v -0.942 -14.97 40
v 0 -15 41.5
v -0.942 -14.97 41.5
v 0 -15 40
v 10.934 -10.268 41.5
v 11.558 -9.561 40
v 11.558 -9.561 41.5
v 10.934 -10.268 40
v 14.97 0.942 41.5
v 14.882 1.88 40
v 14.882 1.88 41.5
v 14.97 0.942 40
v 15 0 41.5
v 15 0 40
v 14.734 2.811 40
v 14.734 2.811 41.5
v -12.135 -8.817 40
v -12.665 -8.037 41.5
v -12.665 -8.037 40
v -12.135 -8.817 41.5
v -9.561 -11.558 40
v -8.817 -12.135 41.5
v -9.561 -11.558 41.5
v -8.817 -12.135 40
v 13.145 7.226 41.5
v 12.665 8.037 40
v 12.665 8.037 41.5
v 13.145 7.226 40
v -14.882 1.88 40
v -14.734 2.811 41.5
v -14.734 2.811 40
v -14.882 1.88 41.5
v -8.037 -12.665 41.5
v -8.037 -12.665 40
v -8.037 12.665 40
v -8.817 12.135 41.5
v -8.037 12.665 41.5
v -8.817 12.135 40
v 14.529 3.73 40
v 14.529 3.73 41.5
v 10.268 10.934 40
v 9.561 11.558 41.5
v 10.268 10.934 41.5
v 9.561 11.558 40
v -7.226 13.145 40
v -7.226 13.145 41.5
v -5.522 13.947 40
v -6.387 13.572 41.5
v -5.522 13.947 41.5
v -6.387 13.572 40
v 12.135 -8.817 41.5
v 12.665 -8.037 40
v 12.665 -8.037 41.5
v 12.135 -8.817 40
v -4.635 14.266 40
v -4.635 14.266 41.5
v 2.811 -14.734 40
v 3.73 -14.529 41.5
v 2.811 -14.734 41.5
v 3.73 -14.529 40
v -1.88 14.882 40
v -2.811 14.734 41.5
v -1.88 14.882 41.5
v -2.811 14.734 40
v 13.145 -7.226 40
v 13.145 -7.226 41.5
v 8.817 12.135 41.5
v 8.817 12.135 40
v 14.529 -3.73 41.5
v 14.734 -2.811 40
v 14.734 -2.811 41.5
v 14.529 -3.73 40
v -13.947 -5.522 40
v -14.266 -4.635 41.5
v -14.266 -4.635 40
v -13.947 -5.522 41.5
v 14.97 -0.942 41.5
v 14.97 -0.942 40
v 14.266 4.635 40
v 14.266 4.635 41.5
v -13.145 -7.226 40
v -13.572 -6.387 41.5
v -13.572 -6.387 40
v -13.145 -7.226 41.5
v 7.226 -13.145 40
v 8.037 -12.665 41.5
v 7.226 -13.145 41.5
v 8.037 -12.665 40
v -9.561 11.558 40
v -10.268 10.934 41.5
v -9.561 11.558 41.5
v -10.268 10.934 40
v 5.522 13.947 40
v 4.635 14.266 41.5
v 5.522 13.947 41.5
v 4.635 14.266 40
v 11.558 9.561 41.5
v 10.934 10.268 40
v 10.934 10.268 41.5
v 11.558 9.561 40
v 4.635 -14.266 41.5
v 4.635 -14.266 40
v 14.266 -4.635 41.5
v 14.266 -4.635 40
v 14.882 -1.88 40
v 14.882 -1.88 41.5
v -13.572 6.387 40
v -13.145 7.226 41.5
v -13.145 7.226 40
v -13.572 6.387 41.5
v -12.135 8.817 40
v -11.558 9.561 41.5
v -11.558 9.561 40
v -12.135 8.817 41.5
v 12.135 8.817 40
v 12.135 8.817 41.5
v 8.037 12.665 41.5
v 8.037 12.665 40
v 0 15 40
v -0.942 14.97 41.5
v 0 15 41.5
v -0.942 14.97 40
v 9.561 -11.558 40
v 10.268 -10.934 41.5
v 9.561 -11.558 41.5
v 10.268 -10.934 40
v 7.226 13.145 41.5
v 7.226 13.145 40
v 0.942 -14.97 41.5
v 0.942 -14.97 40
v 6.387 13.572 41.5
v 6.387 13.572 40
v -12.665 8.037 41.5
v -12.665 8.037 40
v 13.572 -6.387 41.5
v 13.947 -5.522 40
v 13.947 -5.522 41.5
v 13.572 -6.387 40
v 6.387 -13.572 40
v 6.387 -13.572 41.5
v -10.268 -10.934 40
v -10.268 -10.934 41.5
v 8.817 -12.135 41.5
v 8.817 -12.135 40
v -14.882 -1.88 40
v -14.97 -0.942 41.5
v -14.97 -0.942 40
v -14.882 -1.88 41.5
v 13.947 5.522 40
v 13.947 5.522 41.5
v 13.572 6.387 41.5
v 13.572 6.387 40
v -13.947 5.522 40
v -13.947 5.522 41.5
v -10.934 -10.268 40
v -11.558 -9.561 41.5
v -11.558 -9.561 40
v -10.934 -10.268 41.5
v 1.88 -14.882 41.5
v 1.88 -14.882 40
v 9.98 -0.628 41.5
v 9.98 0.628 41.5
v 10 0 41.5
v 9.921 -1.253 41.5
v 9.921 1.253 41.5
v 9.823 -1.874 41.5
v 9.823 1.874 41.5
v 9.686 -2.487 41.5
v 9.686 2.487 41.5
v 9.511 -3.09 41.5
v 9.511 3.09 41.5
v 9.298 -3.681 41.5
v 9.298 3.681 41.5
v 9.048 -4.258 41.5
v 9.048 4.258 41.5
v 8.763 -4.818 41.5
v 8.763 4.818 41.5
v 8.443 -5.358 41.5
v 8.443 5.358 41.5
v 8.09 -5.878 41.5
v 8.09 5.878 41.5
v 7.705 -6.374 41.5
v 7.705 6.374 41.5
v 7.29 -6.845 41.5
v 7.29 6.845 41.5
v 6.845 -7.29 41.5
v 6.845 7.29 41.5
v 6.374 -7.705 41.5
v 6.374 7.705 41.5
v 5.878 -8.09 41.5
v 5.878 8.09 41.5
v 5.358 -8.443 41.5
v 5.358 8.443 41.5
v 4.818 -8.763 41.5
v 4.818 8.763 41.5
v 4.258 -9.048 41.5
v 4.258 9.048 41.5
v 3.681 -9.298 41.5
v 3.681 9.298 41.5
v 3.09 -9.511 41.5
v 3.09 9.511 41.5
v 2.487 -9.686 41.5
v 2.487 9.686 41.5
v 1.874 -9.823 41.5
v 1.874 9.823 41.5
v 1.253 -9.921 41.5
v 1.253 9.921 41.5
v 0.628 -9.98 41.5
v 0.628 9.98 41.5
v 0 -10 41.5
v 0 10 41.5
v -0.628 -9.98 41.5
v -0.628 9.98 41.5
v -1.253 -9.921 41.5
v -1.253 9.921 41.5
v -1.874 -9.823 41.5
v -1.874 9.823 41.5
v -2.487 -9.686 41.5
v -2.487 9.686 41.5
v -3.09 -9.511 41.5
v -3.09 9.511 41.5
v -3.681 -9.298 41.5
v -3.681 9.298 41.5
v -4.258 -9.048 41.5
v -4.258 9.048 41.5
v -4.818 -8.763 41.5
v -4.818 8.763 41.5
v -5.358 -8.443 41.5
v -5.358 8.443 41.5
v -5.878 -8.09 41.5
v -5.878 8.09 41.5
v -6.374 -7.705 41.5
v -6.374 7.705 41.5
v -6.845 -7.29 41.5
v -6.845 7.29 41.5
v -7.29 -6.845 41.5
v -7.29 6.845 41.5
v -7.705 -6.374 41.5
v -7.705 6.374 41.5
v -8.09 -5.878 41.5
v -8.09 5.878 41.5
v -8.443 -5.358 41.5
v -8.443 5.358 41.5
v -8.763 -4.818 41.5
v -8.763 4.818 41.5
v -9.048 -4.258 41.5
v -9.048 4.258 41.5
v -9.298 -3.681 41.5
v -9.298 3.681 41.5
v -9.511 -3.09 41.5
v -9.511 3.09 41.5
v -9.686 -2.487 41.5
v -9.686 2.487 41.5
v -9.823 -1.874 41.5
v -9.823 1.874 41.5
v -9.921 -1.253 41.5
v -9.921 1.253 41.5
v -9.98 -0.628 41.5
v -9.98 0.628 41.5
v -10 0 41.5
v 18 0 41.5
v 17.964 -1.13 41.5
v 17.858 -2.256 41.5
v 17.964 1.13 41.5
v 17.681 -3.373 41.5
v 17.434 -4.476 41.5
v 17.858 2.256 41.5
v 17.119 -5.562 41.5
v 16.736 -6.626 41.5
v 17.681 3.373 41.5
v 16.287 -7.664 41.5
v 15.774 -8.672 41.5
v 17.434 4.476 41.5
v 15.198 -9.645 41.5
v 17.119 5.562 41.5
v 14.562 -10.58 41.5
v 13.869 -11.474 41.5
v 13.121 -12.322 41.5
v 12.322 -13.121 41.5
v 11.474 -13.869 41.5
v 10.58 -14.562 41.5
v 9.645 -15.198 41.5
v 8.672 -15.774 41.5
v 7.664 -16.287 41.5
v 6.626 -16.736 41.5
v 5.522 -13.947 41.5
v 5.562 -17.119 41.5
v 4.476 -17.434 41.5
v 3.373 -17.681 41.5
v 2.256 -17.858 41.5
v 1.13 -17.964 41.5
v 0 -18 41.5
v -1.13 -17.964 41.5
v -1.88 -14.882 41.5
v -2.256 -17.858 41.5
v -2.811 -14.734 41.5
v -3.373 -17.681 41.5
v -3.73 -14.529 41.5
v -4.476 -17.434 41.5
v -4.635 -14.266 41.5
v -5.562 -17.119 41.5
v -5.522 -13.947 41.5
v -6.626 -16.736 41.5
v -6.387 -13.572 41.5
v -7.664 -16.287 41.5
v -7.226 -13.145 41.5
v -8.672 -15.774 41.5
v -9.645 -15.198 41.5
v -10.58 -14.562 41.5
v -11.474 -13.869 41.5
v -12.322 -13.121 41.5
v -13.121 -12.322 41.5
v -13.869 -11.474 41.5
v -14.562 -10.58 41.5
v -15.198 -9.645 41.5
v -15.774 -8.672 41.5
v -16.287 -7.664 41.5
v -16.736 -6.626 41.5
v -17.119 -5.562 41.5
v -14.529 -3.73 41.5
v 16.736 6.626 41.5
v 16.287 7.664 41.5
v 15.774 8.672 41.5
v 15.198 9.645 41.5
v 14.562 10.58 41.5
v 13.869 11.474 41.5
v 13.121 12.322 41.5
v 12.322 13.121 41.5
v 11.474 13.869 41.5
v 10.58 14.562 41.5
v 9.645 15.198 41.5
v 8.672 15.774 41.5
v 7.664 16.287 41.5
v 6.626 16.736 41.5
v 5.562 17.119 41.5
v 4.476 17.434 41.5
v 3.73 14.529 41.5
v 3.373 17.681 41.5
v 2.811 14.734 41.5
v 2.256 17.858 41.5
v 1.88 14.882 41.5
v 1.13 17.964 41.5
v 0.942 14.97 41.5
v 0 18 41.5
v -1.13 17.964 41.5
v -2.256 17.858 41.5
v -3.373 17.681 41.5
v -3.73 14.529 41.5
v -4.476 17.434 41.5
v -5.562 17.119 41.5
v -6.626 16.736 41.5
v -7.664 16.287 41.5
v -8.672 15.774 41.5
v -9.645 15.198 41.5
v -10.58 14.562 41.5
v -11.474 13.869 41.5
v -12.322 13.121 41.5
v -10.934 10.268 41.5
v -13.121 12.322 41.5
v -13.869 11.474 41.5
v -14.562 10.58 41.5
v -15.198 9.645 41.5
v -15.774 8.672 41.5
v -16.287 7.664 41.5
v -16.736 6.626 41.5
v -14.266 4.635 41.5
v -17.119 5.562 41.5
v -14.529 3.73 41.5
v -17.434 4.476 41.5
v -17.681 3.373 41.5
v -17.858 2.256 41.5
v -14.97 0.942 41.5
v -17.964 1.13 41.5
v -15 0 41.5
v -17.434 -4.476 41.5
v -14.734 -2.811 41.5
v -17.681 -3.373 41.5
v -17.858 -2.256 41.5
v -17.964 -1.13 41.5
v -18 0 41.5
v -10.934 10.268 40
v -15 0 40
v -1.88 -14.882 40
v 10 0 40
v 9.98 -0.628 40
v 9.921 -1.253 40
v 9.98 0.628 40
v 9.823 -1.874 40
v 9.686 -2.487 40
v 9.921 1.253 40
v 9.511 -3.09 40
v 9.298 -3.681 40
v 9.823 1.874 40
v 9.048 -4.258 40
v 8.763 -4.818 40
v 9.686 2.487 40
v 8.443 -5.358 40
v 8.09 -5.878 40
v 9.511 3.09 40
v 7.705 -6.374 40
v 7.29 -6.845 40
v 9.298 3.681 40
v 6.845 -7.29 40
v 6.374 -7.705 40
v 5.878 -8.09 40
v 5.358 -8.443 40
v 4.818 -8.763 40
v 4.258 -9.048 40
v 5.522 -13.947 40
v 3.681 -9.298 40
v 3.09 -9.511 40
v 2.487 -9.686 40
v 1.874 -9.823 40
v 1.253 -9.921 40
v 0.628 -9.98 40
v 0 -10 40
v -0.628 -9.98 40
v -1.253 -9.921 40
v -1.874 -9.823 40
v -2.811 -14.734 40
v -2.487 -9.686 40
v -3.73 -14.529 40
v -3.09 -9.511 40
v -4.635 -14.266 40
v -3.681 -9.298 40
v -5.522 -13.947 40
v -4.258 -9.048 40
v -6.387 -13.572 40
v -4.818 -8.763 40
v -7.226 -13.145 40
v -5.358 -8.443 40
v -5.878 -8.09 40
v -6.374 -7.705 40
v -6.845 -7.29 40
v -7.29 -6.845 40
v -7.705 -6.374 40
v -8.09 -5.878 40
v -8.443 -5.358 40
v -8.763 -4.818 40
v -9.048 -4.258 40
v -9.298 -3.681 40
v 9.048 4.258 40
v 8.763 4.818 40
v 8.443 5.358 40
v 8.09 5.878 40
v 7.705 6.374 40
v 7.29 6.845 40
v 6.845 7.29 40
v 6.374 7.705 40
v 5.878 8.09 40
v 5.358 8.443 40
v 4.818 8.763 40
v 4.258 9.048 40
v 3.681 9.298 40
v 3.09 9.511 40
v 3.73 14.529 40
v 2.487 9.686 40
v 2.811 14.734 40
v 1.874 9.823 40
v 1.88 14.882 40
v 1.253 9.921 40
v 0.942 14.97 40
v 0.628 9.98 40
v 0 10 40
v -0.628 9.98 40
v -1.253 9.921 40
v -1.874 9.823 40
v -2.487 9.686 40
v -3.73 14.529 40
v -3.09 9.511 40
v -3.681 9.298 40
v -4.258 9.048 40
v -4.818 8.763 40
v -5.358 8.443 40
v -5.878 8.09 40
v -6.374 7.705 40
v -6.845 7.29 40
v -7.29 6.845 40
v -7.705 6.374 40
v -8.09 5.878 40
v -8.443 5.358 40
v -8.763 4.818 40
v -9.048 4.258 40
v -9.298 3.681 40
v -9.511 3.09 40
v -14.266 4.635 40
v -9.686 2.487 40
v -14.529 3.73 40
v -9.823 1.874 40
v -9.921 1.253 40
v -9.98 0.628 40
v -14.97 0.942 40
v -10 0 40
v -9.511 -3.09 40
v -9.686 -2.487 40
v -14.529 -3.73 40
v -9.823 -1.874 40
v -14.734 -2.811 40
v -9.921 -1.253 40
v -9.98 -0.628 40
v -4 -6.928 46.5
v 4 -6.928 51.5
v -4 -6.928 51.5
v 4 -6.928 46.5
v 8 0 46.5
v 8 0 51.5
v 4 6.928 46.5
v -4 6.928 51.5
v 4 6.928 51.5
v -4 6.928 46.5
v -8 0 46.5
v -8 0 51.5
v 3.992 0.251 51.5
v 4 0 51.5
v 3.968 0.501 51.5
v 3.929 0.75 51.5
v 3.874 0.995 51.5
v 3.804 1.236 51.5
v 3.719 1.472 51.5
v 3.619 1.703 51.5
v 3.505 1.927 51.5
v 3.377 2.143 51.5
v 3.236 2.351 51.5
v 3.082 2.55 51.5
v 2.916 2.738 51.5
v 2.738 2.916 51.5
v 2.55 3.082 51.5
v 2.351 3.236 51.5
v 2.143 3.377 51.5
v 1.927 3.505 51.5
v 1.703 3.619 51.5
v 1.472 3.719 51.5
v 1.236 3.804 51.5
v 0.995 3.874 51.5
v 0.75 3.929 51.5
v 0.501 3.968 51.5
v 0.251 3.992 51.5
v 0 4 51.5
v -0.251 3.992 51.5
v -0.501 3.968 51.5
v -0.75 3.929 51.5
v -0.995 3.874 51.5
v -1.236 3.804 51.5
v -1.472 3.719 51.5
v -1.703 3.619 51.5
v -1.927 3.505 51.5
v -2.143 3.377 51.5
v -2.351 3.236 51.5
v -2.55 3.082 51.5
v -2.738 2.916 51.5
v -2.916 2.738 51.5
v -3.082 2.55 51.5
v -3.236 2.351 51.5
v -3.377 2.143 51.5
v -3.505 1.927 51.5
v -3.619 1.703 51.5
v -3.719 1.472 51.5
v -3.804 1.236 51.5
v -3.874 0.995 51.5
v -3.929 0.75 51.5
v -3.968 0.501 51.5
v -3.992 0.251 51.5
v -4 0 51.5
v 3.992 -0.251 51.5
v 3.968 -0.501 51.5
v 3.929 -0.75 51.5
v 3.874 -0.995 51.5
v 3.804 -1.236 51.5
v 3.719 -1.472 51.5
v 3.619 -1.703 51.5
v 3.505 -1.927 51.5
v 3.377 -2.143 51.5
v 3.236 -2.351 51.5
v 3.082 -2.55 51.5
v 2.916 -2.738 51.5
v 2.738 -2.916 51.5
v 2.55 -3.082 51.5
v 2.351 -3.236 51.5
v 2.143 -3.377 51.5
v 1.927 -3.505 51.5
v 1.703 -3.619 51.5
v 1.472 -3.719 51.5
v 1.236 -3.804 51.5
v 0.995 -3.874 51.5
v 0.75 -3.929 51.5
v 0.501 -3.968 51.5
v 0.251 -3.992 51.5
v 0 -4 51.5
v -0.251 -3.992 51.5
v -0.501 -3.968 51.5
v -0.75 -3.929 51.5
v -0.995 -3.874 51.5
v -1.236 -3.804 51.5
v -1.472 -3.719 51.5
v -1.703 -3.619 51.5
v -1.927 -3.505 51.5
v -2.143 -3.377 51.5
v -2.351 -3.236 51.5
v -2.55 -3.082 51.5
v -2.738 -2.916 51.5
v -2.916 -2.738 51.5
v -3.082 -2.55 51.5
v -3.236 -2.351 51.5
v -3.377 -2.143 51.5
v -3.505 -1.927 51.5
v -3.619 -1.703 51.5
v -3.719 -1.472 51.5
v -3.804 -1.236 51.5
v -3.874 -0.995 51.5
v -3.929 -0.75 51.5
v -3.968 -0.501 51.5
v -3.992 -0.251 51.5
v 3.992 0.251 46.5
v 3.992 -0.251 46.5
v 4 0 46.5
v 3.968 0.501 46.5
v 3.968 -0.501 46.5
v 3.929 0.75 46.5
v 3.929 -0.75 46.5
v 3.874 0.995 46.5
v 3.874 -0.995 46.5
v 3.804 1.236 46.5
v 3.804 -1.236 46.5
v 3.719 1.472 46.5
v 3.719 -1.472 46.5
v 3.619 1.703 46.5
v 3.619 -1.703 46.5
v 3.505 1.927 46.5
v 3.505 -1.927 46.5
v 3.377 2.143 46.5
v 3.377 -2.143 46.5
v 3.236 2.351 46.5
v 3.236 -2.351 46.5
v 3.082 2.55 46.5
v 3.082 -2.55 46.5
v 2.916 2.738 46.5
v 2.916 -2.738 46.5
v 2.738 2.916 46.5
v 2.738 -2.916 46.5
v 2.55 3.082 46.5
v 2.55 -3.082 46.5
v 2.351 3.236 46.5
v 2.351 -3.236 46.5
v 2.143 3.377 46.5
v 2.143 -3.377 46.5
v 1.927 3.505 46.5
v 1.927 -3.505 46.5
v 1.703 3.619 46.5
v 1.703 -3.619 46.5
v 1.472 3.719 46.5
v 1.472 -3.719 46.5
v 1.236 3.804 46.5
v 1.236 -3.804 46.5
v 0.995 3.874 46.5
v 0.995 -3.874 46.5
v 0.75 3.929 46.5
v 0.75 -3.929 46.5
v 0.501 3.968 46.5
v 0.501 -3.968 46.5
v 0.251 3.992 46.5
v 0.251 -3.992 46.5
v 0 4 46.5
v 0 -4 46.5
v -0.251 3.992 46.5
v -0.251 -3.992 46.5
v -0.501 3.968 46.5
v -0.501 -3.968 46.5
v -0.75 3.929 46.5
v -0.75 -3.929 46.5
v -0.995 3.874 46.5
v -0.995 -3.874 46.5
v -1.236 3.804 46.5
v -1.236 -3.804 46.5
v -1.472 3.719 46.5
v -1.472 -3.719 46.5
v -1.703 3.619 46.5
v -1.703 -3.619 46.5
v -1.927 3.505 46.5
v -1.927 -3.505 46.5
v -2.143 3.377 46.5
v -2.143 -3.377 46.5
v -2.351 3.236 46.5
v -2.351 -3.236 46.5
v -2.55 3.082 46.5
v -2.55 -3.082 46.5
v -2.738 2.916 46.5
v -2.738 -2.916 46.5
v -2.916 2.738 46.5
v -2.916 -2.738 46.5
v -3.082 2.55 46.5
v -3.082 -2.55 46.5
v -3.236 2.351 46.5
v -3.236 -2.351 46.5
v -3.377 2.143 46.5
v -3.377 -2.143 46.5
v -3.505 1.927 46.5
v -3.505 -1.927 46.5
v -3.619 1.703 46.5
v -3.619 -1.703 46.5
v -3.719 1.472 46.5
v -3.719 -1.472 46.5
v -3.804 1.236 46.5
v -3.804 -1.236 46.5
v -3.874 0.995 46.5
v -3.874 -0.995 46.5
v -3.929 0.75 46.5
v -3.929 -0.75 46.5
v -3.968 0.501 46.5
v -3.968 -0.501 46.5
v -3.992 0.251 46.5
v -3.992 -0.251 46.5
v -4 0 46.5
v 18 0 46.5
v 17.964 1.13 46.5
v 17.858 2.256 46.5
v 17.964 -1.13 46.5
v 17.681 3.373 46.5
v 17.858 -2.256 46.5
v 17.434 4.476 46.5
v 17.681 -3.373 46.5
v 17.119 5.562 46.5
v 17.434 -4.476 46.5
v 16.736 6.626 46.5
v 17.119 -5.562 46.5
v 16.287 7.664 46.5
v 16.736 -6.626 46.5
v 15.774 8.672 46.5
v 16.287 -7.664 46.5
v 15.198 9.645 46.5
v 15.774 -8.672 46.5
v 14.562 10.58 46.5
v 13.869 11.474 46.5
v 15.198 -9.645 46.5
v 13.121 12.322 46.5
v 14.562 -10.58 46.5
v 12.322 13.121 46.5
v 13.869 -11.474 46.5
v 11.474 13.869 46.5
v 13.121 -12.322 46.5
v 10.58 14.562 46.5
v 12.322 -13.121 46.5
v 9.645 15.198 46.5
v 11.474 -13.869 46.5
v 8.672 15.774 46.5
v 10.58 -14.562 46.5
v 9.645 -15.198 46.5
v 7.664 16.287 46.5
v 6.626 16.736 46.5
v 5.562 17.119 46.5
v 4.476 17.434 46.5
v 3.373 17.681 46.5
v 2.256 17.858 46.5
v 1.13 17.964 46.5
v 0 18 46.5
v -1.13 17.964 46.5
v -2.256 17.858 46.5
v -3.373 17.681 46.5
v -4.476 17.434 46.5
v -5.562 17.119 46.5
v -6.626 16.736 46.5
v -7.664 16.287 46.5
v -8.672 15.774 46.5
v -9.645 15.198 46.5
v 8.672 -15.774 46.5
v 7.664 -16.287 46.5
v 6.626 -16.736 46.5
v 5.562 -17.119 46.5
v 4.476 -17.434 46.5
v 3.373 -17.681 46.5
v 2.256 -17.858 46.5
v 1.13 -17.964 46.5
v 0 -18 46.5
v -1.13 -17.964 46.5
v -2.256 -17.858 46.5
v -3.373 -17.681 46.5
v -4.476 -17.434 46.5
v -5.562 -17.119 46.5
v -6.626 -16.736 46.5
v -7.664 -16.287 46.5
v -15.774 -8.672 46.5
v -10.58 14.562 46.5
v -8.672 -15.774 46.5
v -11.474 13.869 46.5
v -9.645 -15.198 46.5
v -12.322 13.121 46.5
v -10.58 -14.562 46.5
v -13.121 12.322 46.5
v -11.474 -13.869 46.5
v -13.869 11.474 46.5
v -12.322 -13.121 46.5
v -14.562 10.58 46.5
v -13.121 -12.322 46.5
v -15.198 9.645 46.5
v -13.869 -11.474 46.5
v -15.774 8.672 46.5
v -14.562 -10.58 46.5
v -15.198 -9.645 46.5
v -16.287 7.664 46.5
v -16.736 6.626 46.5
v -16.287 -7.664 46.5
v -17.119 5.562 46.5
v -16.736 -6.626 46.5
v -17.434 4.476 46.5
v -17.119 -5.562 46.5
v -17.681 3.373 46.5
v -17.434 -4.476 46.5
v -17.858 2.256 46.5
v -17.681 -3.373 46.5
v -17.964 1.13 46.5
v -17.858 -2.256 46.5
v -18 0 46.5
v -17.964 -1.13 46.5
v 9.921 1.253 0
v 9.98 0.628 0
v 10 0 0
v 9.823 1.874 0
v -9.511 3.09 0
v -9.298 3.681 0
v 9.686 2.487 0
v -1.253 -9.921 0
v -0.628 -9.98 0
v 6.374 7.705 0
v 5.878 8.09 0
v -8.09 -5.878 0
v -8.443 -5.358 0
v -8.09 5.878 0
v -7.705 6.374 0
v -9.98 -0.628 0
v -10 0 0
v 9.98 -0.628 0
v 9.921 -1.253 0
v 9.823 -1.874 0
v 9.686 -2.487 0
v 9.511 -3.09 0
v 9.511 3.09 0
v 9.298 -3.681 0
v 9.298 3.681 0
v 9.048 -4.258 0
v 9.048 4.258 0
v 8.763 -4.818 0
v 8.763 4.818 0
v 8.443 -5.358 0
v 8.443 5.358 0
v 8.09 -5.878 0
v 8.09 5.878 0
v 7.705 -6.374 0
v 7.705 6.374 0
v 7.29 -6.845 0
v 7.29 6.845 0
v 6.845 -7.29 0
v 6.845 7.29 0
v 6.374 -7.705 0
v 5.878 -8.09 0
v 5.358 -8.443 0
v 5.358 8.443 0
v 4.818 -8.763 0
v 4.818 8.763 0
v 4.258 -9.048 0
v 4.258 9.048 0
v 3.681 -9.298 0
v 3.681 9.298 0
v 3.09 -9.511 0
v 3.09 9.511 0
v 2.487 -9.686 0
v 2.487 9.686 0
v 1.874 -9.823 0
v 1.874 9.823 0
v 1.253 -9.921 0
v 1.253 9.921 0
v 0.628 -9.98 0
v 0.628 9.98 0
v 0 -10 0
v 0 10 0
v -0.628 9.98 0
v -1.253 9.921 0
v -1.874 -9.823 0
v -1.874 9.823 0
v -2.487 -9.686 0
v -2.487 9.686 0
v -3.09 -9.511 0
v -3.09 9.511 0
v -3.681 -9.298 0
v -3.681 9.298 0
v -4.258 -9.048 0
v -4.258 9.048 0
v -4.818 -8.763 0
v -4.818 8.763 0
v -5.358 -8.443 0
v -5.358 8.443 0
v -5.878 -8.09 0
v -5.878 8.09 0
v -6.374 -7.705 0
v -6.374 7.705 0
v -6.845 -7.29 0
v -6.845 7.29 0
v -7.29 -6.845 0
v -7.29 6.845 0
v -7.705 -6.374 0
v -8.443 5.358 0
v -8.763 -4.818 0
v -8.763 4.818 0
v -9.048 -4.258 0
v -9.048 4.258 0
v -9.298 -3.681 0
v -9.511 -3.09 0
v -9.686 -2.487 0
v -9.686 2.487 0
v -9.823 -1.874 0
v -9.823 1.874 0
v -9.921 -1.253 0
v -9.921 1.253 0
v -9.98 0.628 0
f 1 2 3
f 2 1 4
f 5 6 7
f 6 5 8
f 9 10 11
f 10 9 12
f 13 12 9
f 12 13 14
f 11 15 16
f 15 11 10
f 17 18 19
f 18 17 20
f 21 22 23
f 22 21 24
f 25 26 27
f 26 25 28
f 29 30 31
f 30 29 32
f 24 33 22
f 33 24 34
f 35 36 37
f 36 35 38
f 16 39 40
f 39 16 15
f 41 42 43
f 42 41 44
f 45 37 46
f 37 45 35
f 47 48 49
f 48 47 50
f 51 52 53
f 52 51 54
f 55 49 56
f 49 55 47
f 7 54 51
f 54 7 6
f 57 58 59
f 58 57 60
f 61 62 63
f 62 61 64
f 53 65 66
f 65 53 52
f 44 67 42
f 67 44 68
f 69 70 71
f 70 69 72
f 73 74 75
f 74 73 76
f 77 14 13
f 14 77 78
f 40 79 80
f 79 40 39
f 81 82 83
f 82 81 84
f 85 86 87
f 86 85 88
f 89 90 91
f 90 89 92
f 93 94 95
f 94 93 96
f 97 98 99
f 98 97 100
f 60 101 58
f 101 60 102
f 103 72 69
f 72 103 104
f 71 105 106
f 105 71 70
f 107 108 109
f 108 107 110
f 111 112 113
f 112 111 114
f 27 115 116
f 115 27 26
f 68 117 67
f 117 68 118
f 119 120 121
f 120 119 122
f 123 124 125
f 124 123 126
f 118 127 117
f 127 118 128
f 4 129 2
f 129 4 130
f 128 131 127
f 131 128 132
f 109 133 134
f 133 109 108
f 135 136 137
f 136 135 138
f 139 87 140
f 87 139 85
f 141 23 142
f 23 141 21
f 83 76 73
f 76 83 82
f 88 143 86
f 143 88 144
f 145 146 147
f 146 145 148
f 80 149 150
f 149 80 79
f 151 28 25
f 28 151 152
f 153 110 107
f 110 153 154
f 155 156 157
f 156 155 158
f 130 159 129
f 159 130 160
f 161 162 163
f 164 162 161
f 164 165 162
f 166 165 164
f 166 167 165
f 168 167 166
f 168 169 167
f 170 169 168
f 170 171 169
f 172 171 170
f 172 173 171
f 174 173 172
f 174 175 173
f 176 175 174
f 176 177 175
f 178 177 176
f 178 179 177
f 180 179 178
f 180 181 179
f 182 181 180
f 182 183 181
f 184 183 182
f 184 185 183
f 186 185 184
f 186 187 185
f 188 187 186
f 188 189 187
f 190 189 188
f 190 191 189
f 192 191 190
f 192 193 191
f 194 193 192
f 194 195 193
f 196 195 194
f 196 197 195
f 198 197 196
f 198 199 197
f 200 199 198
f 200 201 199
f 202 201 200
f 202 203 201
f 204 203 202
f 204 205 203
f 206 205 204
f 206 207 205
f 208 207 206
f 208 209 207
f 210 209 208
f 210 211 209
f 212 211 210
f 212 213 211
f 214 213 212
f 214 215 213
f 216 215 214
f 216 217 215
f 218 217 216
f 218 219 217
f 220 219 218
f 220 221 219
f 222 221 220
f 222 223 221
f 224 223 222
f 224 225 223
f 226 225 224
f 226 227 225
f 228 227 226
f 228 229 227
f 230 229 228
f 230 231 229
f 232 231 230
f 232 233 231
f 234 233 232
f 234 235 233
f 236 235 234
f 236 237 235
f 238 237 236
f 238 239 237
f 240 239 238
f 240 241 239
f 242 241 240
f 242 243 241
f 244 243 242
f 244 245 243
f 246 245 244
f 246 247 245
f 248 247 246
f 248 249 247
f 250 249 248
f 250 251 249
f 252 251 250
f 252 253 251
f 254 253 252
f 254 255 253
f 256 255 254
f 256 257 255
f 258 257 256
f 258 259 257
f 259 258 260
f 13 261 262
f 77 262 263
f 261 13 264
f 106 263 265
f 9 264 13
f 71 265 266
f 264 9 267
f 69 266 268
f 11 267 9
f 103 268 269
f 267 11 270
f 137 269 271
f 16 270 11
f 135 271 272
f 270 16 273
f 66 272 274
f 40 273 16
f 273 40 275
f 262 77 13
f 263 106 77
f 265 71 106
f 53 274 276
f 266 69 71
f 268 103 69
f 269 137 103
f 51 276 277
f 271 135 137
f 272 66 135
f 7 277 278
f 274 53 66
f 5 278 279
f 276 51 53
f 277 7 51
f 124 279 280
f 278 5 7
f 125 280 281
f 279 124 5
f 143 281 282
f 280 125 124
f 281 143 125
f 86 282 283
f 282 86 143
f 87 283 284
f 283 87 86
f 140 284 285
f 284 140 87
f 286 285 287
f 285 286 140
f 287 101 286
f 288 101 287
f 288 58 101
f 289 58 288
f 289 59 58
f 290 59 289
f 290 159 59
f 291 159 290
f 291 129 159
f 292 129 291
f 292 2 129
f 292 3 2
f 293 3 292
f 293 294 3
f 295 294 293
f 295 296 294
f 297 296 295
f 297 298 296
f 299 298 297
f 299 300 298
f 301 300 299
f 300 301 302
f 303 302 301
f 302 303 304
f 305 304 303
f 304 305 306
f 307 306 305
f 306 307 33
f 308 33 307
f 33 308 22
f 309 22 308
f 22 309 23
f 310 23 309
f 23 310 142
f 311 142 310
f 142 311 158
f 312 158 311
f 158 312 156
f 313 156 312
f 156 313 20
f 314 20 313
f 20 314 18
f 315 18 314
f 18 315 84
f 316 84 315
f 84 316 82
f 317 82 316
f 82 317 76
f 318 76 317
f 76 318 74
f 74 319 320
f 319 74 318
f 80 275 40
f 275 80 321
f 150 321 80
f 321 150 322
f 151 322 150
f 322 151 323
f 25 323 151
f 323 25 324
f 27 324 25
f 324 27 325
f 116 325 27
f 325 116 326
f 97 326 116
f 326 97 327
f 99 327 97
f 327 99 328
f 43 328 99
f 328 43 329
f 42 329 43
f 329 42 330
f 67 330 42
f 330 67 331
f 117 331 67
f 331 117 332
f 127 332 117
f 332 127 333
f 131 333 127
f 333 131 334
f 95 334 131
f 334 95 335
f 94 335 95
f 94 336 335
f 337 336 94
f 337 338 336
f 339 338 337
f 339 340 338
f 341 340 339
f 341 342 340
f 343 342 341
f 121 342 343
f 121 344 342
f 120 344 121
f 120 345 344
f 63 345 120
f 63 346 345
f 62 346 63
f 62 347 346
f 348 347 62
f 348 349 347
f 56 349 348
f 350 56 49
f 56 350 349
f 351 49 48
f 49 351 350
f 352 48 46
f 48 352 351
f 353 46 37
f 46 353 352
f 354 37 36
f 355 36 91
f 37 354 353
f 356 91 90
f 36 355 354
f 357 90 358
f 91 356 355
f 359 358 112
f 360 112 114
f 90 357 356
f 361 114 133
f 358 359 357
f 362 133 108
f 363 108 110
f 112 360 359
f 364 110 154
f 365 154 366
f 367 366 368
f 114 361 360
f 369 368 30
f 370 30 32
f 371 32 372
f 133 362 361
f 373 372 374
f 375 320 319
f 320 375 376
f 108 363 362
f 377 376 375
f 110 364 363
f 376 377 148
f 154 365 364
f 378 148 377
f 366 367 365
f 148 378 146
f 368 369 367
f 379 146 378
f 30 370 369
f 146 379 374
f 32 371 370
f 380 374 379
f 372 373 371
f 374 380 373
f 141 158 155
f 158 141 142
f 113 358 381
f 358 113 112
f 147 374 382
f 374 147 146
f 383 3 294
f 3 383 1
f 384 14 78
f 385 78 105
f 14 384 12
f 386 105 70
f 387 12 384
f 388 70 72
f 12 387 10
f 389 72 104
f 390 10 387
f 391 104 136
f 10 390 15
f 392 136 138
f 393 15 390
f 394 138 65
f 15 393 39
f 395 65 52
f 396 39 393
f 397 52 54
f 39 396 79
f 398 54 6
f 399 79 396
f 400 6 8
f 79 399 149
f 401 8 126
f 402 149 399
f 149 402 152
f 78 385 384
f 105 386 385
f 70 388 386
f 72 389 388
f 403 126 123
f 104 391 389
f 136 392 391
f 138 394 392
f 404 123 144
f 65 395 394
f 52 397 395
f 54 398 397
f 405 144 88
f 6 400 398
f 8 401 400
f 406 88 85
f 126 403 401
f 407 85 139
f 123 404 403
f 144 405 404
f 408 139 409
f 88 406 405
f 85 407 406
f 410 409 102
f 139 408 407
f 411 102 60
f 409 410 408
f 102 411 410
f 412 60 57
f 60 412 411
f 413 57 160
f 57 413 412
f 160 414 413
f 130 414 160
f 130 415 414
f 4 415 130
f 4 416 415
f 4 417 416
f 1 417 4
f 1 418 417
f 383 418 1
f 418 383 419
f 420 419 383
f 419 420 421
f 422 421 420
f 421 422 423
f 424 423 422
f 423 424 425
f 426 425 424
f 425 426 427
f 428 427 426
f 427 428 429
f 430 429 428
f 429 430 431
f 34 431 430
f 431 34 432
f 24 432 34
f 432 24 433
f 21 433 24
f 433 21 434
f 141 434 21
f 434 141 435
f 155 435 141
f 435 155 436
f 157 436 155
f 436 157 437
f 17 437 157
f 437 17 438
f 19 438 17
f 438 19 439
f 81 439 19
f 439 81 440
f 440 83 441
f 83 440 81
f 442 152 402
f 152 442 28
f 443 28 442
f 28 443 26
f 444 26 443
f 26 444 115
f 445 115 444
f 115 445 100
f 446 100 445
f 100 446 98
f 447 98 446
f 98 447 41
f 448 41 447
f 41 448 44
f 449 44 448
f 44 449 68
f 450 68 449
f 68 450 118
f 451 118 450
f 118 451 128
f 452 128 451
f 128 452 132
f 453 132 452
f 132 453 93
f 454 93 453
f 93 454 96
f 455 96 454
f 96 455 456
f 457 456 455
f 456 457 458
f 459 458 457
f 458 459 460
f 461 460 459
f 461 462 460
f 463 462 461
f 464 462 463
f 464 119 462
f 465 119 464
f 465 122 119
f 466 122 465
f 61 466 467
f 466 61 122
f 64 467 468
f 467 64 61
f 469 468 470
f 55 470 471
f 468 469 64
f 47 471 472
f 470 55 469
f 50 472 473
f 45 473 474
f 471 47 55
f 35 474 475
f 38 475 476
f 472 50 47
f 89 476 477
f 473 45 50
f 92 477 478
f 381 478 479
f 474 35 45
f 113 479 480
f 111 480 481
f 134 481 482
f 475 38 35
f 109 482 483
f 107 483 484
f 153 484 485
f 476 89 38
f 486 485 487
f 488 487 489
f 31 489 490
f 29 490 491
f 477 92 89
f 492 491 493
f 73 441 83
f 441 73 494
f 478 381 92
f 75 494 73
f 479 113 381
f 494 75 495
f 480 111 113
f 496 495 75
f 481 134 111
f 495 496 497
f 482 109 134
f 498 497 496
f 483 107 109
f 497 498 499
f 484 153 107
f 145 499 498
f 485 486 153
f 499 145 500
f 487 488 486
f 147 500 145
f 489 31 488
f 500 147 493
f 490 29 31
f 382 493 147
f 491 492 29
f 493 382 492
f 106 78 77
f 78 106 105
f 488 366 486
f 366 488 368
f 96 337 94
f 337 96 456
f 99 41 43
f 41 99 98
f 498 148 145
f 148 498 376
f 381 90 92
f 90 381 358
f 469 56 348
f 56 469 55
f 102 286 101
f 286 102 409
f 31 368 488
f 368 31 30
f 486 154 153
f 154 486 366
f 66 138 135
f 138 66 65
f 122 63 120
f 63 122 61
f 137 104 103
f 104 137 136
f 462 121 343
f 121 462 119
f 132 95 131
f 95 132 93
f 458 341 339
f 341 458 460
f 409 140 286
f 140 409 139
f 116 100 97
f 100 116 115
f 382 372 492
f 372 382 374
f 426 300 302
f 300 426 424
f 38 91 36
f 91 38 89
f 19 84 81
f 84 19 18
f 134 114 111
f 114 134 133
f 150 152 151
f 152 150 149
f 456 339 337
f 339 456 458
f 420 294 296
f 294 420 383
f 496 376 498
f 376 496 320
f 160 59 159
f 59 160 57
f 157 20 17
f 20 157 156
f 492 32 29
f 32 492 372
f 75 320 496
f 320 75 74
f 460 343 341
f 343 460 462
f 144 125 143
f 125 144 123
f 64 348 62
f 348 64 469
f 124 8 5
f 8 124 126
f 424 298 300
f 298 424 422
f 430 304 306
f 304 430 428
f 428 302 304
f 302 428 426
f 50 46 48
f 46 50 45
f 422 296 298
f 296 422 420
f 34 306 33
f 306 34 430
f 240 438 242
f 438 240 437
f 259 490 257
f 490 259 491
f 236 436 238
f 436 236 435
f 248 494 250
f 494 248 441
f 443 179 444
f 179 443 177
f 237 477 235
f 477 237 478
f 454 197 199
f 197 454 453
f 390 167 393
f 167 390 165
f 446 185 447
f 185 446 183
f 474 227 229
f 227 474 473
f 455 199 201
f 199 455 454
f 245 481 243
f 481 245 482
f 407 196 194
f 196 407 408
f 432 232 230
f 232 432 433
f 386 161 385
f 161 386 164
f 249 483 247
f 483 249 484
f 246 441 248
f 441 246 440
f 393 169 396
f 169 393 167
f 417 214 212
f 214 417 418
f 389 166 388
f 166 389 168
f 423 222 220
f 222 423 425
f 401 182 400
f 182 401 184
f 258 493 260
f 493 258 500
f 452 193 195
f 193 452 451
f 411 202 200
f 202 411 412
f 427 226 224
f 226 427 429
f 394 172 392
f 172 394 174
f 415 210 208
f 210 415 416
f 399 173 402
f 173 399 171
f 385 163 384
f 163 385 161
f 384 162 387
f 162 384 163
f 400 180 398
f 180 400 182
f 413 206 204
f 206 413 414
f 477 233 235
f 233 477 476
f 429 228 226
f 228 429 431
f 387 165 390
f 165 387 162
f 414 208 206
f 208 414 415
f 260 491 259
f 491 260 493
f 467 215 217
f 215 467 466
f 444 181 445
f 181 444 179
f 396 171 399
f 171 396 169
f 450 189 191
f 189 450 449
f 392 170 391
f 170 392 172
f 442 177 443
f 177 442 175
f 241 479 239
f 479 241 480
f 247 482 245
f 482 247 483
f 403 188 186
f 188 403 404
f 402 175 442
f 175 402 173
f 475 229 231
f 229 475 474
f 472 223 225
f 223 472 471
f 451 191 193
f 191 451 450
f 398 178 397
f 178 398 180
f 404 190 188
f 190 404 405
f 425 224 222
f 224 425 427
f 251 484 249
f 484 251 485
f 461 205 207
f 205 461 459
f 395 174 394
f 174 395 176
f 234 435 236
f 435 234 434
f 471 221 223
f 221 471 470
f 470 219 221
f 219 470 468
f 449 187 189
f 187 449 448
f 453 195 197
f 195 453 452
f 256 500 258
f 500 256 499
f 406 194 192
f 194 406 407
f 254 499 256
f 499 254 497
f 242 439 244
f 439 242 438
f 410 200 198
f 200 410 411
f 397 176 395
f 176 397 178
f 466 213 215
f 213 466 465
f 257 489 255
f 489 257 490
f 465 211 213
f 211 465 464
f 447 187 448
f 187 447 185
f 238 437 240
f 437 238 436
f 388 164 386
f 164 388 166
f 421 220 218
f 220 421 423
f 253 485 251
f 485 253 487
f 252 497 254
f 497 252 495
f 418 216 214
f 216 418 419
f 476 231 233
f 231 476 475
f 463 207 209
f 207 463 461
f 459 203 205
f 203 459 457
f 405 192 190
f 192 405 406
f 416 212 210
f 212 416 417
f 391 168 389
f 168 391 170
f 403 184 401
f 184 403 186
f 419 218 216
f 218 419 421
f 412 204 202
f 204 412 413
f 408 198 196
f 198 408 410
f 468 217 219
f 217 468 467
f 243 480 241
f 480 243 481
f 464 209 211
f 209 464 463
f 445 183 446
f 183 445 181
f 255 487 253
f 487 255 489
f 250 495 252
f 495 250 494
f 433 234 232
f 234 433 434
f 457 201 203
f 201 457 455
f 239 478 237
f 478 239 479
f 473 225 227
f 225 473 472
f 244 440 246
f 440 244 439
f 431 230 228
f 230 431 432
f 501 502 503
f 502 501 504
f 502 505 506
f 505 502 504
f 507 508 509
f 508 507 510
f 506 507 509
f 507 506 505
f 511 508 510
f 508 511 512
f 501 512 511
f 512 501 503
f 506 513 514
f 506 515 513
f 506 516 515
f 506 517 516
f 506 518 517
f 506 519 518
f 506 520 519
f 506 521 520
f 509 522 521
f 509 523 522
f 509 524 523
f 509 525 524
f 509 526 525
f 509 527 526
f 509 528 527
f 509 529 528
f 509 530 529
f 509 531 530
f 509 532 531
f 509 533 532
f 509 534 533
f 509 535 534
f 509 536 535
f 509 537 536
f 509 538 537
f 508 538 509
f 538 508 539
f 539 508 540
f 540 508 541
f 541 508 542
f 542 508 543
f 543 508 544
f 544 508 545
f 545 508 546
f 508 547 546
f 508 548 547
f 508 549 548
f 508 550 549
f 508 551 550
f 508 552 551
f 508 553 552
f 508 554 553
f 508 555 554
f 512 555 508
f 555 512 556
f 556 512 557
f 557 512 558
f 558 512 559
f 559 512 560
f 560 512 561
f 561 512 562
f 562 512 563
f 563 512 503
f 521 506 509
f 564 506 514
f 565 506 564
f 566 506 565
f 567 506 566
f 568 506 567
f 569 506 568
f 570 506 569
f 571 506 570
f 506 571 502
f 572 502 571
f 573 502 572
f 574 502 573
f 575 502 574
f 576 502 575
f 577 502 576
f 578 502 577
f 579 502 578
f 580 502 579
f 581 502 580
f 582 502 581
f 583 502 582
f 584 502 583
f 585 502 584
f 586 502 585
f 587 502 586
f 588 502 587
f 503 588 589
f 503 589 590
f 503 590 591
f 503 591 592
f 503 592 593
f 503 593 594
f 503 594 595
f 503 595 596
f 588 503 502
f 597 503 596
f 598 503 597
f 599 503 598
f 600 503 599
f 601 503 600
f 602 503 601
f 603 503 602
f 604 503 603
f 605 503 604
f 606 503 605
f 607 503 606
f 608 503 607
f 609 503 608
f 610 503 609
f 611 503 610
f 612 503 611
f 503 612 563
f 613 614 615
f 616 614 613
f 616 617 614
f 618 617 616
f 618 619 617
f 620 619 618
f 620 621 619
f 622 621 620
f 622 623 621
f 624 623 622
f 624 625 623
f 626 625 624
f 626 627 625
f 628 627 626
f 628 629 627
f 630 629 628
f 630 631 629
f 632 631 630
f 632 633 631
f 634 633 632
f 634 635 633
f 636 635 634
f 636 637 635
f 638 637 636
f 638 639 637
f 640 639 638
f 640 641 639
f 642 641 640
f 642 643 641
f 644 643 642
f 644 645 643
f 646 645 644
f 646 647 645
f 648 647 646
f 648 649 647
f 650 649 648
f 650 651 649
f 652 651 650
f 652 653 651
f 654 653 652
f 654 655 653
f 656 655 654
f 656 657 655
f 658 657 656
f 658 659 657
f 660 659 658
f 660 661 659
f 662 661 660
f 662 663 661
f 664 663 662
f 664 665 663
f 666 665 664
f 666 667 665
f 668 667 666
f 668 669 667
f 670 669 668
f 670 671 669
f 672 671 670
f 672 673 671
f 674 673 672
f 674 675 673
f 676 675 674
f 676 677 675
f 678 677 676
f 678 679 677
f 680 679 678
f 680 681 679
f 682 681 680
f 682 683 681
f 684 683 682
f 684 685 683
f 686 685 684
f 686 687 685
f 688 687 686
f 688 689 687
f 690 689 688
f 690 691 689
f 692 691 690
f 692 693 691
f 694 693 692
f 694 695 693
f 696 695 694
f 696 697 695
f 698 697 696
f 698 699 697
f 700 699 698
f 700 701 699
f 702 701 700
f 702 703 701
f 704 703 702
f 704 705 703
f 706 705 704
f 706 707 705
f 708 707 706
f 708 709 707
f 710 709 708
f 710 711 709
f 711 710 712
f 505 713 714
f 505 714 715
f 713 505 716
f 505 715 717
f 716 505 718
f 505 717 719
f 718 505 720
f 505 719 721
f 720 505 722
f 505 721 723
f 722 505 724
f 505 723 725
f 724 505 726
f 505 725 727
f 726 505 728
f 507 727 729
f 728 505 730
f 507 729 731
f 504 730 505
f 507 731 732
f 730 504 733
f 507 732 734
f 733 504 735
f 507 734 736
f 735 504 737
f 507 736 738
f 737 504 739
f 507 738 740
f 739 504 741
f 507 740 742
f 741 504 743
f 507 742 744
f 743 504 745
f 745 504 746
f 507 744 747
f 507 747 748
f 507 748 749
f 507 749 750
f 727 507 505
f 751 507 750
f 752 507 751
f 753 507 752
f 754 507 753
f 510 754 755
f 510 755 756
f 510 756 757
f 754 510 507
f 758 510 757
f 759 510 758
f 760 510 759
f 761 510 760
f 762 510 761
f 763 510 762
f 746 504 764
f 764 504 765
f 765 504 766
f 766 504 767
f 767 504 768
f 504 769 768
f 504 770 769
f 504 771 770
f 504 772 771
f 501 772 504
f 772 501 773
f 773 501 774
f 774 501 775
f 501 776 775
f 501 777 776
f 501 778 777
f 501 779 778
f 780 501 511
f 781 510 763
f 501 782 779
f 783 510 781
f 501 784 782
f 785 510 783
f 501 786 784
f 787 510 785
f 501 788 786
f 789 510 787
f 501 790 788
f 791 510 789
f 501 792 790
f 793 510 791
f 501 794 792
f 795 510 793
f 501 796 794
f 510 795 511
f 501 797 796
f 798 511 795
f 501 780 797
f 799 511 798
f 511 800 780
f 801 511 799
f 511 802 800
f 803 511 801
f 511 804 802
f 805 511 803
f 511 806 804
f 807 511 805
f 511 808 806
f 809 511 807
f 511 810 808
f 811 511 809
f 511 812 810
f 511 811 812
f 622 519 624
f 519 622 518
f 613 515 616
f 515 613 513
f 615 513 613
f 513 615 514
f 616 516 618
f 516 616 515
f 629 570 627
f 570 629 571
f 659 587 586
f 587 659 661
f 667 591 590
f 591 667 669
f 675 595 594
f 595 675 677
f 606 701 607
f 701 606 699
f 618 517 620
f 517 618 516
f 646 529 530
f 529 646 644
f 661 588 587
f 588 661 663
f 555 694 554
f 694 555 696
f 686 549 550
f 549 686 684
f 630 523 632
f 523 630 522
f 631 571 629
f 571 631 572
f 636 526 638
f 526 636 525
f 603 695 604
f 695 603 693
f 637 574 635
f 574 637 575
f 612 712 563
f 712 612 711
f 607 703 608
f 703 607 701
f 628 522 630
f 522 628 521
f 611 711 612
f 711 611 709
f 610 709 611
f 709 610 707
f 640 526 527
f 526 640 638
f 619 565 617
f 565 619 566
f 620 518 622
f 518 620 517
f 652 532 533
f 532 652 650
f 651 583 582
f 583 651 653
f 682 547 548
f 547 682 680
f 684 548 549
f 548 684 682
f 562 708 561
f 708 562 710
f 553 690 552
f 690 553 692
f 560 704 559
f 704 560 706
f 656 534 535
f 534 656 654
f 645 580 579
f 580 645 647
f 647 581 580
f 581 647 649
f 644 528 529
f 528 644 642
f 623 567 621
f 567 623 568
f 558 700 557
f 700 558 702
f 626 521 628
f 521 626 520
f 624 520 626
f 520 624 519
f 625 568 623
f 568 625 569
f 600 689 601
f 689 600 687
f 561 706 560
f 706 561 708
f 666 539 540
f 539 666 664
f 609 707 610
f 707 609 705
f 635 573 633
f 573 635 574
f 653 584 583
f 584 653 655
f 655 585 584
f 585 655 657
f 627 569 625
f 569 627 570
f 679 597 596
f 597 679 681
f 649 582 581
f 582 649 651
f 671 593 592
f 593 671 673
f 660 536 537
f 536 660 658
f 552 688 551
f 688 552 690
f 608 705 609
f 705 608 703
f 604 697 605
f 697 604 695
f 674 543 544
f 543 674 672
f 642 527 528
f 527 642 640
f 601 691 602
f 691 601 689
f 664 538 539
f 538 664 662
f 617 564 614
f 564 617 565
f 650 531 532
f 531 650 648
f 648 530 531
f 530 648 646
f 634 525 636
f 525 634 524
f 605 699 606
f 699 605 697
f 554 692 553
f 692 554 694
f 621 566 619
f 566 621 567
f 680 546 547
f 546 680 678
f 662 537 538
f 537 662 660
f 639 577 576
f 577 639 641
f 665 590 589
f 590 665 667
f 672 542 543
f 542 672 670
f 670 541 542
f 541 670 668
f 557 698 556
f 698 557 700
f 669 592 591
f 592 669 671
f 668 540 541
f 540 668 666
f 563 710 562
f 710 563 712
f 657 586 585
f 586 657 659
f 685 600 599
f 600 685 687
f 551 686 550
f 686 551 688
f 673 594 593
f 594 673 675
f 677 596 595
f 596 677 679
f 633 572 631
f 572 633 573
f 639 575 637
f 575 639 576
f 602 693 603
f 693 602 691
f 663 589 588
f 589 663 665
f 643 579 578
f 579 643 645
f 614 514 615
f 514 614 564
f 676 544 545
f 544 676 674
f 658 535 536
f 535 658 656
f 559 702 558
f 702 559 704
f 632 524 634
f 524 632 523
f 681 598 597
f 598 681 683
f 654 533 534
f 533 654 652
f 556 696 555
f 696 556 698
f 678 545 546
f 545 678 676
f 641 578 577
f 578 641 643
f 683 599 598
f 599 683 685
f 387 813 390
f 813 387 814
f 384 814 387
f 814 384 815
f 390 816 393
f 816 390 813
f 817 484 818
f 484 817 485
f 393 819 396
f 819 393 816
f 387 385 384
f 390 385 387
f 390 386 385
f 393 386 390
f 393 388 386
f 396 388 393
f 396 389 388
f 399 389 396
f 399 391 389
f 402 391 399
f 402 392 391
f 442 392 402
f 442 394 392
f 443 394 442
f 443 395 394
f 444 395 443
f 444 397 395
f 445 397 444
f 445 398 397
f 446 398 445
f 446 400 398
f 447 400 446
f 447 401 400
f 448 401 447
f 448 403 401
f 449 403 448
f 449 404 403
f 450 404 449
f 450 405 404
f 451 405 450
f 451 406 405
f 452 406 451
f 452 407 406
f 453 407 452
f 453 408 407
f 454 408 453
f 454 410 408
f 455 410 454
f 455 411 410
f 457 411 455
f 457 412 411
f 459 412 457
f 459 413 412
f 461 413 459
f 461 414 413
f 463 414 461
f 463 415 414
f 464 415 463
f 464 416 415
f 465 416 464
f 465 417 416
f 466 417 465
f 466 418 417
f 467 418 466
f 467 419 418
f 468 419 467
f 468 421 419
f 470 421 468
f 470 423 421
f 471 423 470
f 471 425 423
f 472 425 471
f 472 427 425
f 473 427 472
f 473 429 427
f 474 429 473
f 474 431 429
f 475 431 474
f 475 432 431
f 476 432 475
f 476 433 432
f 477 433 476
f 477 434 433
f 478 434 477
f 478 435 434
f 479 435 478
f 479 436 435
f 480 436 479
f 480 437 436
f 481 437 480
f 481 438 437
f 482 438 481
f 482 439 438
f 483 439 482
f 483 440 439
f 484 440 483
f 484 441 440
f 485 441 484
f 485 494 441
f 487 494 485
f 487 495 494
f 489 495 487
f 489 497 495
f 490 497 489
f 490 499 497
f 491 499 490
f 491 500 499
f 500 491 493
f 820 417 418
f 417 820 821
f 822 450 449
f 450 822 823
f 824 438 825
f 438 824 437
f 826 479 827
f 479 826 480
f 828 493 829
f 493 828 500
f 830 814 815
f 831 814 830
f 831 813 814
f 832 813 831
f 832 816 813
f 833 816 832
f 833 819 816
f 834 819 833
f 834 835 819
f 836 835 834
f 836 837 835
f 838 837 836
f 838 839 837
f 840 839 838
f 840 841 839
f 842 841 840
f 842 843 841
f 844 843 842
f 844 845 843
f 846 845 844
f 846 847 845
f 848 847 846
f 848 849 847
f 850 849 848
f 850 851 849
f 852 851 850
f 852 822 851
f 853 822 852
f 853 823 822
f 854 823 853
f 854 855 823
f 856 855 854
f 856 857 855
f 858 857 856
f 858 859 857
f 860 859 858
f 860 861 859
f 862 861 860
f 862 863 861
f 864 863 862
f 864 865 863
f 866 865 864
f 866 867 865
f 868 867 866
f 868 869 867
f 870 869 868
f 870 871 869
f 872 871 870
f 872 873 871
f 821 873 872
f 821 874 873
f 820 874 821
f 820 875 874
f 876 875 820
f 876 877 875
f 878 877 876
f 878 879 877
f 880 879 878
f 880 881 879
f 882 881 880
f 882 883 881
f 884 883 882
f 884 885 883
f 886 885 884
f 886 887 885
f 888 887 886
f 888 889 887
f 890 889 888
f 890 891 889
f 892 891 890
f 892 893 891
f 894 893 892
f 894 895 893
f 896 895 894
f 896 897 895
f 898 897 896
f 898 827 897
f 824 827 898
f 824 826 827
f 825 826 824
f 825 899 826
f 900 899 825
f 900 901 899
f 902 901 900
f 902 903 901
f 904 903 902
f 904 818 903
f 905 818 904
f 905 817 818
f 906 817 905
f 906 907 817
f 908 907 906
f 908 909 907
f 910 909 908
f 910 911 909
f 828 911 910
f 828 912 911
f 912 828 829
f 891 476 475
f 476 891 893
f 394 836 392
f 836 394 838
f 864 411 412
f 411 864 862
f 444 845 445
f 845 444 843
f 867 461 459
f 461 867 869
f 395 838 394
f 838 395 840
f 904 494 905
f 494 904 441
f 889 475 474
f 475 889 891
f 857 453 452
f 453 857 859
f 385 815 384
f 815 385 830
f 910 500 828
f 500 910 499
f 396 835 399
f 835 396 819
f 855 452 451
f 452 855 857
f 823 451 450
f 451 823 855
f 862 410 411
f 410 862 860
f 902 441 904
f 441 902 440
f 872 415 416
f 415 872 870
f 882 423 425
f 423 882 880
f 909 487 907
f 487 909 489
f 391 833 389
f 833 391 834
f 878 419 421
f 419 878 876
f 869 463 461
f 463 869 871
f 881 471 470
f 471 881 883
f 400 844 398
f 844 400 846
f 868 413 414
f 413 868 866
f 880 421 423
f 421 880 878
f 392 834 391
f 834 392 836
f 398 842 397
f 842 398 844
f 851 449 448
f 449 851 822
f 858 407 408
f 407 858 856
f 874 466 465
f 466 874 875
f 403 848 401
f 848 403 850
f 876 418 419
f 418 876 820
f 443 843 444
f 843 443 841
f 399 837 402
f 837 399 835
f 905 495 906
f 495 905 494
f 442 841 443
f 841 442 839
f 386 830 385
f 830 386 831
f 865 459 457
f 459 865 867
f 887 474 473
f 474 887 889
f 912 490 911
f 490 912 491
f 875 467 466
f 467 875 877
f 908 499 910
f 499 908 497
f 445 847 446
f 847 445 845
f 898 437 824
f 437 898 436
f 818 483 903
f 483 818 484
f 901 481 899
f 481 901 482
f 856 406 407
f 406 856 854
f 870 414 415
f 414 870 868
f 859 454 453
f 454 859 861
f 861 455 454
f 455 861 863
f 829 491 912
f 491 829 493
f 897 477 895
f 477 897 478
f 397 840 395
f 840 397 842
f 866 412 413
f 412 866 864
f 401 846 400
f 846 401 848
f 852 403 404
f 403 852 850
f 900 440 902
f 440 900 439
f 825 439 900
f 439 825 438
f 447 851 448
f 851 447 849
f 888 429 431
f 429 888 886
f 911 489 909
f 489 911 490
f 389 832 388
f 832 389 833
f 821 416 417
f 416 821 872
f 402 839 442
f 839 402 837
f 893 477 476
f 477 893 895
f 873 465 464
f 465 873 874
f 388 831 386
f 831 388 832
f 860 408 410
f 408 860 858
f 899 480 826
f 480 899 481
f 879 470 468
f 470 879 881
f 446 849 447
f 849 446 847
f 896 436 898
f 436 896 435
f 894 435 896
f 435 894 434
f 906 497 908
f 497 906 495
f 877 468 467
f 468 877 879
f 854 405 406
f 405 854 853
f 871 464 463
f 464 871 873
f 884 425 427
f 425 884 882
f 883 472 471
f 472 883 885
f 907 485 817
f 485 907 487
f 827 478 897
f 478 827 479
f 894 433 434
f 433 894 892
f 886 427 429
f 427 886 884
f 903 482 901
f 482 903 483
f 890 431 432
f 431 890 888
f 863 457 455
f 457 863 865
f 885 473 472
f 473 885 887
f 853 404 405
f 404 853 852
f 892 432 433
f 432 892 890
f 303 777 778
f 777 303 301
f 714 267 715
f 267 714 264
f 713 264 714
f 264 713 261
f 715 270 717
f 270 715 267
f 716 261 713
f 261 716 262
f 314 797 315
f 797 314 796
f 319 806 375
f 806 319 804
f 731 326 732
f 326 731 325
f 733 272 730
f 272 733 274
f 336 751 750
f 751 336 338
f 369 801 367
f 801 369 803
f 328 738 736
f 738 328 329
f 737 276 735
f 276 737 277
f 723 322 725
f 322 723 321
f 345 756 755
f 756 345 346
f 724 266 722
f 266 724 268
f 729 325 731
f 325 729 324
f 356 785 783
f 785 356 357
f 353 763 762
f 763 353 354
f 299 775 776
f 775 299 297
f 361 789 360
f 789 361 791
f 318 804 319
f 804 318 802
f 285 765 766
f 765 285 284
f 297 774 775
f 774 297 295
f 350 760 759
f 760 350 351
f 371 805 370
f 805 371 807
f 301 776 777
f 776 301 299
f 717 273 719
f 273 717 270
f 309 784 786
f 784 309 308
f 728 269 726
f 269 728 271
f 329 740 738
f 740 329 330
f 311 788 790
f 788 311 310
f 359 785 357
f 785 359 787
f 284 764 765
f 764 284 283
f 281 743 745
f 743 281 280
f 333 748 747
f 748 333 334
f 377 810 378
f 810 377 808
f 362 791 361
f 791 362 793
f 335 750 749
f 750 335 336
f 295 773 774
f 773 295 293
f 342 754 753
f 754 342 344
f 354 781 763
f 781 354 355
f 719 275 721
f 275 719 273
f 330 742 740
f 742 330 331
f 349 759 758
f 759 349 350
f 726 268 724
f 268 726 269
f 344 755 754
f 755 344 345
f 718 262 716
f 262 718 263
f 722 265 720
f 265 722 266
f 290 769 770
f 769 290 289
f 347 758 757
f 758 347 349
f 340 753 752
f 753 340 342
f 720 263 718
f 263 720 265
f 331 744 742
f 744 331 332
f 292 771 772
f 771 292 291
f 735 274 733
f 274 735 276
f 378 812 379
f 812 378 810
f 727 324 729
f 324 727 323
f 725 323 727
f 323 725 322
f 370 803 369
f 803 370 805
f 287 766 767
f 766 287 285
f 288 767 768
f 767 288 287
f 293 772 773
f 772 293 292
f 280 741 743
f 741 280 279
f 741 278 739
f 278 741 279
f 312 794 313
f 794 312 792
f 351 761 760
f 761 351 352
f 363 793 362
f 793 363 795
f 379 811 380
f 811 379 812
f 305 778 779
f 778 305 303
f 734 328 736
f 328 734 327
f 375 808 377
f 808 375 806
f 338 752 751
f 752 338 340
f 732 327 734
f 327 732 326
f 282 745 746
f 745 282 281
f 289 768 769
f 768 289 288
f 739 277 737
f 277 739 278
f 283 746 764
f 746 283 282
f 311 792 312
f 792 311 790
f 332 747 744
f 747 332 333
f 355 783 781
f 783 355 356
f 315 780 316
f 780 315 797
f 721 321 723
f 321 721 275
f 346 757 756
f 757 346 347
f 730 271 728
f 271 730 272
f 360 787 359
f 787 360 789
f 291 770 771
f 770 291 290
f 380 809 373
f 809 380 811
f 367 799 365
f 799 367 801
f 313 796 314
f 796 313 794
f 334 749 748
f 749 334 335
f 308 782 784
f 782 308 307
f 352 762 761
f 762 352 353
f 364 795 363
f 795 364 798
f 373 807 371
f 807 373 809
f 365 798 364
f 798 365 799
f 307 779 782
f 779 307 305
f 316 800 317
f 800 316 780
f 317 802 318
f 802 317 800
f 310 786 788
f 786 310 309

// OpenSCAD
// Central Cylinder
module central_cylinder() {
    cylinder(h = 40, r = 10, $fn = 100); // Height increased to 40 to match the elongated shape of the original model
}

// Spacer Ring
module spacer_ring() {
    difference() {
        cylinder(h = 1.5, r = 15, $fn = 100); // Reduced thickness to 1.5 to match the thinner profile of the original model
        cylinder(h = 1.6, r = 10, $fn = 100); // Inner cut to create the ring
    }
}

// Flange Plate
module flange_plate() {
    cylinder(h = 5, r = 18, $fn = 100); // Reduced diameter to 18 to match the original model
}

// Nut
module nut() {
    difference() {
        cylinder(h = 5, r = 8, $fn = 6); // Hexagonal nut with sharper edges
        cylinder(h = 5.1, r = 4, $fn = 100); // Inner cut for the bolt
    }
}

// Bolt
module bolt() {
    cylinder(h = 30, r = 3, $fn = 100); // Increased length to 30 to match the original model
}

// Main Model
module model() {
    // Layer 1: Central Cylinder
    central_cylinder();
    
    // Layer 2: Spacer Ring
    translate([0, 0, 40]) spacer_ring(); // Positioned on top of the central cylinder
    
    // Layer 3: Flange Plate
    translate([0, 0, 41.5]) flange_plate(); // Positioned on top of the spacer ring
    
    // Layer 4: Nut
    translate([0, 0, 46.5]) nut(); // Positioned on top of the flange plate
    
    // Layer 5: Bolt
    translate([0, 0, 0]) bolt(); // Positioned through the entire assembly
}

// Render the model
model();
